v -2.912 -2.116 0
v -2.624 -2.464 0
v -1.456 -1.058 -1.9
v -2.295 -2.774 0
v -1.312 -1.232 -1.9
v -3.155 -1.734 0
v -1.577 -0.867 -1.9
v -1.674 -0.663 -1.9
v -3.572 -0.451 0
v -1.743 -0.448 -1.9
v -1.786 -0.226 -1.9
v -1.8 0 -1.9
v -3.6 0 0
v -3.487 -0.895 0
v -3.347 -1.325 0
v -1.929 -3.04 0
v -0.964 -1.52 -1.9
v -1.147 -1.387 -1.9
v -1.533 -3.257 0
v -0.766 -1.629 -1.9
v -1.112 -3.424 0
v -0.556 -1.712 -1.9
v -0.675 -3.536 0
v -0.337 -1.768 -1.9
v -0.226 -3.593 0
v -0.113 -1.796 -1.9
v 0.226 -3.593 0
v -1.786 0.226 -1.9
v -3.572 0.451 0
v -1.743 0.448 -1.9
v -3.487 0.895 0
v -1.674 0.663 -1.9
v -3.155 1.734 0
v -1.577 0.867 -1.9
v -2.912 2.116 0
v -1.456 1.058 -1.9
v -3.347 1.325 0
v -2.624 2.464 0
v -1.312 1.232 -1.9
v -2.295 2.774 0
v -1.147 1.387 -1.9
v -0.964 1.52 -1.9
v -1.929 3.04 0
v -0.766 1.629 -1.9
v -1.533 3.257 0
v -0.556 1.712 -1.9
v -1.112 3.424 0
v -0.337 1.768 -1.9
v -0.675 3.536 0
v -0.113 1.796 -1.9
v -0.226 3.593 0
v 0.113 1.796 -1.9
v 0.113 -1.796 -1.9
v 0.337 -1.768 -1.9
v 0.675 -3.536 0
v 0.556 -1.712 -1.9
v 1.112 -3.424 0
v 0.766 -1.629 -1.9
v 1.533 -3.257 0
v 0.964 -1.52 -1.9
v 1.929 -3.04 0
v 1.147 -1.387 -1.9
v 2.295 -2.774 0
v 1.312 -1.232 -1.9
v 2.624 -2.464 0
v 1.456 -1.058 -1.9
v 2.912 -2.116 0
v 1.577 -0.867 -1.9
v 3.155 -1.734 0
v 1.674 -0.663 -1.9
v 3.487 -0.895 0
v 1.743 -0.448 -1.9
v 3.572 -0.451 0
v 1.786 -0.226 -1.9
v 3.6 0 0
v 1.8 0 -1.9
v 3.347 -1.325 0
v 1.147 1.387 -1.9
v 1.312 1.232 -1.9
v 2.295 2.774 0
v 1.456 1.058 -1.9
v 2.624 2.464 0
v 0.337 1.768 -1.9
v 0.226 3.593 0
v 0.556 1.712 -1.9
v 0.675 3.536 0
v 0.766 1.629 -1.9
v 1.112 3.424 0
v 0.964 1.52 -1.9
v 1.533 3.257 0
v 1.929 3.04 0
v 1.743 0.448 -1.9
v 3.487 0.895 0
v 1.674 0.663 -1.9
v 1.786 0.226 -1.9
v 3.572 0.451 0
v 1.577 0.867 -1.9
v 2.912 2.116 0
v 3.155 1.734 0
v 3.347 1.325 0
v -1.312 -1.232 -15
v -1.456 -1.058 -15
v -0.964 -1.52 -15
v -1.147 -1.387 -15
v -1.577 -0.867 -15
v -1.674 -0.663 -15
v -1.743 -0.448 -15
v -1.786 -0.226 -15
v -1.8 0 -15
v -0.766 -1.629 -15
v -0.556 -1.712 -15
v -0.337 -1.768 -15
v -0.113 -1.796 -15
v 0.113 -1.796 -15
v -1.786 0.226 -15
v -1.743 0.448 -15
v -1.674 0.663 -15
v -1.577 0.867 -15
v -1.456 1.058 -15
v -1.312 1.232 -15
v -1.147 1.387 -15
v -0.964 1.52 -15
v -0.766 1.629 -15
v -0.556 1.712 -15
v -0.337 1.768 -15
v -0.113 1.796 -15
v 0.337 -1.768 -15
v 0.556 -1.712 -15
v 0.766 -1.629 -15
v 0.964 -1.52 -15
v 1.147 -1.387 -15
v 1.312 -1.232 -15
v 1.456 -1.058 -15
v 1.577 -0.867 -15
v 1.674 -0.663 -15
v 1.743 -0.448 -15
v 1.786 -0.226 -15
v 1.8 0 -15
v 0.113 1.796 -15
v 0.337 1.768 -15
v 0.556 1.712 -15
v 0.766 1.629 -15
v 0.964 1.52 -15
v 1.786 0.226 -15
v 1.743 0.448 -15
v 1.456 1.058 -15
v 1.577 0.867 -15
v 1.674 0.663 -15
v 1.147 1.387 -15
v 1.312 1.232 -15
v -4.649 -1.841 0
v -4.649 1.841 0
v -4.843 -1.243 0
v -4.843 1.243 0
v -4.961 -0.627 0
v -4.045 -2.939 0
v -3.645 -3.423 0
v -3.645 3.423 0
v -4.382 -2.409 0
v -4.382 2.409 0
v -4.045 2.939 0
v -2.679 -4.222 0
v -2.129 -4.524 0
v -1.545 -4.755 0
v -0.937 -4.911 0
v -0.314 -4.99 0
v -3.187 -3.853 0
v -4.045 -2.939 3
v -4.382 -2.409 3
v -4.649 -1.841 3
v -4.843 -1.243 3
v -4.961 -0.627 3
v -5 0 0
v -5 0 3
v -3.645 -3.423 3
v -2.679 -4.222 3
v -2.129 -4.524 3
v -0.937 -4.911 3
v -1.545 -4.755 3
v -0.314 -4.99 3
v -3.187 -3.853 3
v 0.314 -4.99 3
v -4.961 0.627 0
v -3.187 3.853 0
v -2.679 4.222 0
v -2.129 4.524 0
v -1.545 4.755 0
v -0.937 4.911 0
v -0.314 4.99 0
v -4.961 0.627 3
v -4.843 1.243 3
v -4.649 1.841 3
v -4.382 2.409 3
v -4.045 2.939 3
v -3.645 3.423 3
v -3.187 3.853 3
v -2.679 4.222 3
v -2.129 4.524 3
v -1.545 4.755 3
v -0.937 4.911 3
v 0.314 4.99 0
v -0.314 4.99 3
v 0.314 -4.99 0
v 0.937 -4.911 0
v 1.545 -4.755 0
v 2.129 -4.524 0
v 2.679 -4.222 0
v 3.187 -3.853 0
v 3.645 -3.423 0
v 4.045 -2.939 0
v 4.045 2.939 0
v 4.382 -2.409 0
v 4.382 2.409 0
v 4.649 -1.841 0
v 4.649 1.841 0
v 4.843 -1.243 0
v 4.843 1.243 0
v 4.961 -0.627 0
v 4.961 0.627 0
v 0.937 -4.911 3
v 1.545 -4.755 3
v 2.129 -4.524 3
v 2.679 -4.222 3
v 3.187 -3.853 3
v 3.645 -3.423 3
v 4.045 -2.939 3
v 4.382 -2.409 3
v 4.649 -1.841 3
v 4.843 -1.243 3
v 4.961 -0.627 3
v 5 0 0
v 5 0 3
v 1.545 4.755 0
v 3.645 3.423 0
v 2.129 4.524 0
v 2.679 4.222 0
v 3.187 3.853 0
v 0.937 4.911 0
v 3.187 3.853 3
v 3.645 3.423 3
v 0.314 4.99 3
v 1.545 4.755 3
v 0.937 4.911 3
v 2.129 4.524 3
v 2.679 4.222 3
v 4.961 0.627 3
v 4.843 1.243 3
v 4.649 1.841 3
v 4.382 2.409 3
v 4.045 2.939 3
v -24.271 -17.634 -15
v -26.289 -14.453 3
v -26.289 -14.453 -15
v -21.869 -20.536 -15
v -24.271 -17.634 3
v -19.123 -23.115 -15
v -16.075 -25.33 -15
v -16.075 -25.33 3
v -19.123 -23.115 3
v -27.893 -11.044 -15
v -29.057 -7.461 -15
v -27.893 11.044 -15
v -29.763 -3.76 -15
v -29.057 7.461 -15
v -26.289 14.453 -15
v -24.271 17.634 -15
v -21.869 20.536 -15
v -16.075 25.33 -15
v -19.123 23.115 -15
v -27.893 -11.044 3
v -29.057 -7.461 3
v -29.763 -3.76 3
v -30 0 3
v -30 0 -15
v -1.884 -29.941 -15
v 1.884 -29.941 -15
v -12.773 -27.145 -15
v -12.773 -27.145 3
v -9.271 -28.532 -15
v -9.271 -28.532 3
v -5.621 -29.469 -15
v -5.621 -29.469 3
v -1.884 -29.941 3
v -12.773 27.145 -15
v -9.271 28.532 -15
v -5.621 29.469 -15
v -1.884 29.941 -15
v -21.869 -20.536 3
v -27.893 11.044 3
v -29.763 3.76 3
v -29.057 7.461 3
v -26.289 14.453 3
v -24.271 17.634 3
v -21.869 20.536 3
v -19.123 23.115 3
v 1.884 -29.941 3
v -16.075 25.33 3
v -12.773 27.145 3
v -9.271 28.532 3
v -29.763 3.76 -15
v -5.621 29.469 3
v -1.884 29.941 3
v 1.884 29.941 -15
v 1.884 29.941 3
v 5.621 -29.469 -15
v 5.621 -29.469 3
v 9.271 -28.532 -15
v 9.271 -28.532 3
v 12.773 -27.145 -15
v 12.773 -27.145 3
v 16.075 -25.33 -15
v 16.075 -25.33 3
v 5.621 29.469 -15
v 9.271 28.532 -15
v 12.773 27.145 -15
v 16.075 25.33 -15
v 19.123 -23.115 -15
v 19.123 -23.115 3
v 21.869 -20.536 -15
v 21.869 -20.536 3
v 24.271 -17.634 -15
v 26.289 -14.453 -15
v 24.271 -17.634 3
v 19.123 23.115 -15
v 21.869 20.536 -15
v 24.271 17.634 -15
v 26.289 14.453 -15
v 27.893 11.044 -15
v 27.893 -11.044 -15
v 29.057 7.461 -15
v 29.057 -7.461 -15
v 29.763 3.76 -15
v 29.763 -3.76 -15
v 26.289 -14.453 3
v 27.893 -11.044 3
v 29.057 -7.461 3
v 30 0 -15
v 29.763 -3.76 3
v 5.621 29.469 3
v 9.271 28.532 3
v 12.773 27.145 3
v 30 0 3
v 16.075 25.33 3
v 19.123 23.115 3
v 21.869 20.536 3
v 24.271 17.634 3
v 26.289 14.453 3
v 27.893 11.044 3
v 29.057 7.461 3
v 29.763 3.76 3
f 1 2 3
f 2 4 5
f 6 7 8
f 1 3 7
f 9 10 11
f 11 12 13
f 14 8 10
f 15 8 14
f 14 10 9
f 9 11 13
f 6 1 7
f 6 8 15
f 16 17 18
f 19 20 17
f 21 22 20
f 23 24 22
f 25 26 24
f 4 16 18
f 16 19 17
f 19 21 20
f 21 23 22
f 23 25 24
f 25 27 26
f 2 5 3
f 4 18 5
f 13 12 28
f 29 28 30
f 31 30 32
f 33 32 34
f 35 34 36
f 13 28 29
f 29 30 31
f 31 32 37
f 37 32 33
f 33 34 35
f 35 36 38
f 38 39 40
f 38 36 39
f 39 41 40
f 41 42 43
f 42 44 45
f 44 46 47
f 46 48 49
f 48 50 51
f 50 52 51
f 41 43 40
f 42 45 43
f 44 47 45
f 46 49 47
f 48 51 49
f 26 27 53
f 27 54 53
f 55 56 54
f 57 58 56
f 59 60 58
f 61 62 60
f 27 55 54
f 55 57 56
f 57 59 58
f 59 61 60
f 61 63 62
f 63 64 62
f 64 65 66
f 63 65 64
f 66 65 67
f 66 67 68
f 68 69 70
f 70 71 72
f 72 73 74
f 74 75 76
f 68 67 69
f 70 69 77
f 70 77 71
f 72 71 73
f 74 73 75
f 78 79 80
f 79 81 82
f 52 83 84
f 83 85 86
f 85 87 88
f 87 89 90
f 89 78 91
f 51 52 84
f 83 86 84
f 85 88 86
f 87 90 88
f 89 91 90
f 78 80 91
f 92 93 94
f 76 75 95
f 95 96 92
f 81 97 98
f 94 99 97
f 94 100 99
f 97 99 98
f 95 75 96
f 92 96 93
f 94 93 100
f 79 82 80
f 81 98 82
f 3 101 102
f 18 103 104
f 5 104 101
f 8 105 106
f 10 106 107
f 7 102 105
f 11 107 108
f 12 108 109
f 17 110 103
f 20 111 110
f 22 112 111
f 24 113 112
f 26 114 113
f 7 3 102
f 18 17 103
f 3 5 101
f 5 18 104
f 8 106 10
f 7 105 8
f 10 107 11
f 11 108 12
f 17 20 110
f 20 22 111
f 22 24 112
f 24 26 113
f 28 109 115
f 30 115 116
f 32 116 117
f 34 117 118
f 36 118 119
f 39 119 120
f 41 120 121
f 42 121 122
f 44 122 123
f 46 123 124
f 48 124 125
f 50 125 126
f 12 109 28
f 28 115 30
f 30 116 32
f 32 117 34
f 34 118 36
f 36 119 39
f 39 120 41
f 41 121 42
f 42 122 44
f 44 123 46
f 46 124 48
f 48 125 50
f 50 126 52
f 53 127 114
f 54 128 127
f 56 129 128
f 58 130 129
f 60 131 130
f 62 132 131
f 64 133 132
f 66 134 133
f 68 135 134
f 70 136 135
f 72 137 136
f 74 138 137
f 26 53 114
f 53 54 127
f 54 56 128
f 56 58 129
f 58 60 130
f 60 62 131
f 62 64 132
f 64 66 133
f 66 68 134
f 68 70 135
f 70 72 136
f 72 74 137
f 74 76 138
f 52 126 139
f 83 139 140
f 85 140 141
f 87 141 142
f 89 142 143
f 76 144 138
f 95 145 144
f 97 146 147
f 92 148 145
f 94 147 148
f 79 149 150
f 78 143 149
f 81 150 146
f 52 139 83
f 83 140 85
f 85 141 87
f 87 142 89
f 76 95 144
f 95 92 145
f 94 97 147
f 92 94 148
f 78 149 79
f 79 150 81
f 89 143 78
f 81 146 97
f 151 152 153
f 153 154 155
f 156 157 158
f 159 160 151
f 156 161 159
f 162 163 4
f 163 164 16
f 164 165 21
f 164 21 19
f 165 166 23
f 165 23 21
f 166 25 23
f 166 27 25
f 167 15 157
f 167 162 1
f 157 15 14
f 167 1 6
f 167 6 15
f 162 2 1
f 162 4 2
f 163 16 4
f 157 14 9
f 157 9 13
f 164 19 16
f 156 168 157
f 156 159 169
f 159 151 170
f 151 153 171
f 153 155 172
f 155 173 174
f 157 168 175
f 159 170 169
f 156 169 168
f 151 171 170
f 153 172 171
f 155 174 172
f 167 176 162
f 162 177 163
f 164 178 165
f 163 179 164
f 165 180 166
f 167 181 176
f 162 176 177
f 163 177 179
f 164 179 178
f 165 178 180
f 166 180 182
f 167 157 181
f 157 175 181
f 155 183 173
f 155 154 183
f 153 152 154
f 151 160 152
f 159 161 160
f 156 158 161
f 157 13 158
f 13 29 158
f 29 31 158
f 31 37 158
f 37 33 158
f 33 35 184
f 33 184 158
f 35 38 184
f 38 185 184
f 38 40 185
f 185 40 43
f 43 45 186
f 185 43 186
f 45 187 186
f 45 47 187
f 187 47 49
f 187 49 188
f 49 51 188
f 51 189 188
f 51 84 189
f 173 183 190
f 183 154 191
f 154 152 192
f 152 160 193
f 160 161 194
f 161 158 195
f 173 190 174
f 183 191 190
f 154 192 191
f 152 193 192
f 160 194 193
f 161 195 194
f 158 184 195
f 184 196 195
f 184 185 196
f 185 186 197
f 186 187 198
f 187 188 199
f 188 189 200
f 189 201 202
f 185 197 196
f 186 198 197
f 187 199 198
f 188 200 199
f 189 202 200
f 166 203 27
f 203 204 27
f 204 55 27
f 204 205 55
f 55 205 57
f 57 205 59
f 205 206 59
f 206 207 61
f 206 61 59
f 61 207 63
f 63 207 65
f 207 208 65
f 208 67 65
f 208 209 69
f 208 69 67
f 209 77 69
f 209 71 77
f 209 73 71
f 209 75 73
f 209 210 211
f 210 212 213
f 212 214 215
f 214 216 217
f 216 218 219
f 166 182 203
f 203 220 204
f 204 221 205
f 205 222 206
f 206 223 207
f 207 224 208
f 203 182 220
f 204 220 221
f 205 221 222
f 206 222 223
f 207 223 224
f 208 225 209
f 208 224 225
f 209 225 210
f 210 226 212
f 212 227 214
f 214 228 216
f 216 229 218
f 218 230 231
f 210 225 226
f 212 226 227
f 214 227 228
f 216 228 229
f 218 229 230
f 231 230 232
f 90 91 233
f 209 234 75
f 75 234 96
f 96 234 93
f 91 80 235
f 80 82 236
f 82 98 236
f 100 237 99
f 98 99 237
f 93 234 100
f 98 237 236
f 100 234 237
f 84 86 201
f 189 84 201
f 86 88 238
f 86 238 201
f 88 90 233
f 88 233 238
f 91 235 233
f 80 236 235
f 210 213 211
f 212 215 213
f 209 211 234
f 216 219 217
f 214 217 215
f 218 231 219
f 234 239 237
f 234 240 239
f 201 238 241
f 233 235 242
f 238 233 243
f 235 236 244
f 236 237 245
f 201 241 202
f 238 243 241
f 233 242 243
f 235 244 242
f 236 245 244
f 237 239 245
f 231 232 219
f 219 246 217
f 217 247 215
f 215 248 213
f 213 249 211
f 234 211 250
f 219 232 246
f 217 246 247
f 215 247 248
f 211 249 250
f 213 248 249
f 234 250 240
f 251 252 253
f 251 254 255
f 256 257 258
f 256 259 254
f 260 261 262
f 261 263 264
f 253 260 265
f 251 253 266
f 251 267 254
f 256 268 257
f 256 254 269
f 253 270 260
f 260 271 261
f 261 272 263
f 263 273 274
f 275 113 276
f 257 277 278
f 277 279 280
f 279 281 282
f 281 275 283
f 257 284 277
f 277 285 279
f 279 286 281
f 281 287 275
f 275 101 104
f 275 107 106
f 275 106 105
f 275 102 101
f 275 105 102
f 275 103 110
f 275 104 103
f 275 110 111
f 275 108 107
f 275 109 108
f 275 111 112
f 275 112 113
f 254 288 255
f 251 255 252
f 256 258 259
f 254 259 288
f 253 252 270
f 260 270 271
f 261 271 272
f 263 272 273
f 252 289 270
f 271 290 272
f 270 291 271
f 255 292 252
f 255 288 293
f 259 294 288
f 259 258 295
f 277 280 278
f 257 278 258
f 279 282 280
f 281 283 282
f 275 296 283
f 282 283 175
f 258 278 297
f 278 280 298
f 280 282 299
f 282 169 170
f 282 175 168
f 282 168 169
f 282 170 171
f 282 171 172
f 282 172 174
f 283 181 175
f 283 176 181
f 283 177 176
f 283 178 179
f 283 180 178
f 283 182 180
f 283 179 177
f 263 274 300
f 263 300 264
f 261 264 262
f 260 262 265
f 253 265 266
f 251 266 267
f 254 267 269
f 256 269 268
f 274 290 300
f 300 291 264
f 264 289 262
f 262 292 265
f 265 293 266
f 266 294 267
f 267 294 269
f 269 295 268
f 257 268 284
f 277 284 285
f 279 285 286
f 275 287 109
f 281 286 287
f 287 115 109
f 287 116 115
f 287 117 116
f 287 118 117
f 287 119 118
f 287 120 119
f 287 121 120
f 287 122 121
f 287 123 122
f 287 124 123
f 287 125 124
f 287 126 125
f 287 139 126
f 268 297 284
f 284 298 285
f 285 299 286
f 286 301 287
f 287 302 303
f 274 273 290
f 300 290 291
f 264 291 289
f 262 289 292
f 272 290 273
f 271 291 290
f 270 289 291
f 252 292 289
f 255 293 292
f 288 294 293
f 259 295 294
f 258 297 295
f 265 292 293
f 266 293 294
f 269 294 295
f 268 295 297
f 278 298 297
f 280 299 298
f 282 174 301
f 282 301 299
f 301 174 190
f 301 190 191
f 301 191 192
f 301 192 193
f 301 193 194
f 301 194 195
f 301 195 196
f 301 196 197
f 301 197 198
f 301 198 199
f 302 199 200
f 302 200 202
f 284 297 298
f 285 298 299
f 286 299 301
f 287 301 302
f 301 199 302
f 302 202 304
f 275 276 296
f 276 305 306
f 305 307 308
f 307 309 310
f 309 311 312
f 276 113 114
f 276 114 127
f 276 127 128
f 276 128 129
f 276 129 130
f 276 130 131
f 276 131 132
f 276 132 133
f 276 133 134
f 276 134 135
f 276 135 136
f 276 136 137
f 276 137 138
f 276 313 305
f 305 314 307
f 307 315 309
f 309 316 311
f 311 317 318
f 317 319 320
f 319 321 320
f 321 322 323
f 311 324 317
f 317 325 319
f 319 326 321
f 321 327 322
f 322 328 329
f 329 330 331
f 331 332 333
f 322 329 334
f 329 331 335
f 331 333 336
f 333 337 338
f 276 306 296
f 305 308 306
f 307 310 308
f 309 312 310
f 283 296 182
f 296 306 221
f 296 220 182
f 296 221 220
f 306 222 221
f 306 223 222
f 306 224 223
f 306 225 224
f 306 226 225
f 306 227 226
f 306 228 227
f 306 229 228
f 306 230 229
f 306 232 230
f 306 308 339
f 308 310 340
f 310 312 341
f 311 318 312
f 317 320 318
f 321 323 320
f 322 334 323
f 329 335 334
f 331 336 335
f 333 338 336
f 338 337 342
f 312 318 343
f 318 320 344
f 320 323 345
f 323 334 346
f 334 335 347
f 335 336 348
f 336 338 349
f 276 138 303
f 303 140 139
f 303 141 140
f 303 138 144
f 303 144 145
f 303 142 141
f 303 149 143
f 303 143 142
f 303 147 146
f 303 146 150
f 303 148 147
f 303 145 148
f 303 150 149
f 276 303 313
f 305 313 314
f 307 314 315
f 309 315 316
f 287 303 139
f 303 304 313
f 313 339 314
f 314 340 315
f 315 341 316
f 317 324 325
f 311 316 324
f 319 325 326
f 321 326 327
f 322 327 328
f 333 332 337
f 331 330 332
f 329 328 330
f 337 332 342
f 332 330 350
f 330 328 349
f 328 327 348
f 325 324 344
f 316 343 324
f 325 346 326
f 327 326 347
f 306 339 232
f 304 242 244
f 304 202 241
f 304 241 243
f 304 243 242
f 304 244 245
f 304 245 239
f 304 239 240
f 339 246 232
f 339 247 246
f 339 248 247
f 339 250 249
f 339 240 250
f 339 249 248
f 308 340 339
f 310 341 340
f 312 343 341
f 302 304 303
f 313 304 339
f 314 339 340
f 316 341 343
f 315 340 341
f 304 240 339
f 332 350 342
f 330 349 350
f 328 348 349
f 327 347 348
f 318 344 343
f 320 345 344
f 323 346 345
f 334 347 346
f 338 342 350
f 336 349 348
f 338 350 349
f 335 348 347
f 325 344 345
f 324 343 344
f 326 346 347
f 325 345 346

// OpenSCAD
$fn = 50;


difference() {
	union() {
		translate(v = [0, 0, -15.0000000000]) {
			cylinder(h = 18, r = 30.0000000000);
		}
	}
	union() {
		translate(v = [0, 0, 0]) {
			rotate(a = [0, 0, 0]) {
				difference() {
					union() {
						translate(v = [0, 0, -18.0000000000]) {
							cylinder(h = 18, r = 1.5000000000);
						}
						translate(v = [0, 0, -1.9000000000]) {
							cylinder(h = 1.9000000000, r1 = 1.8000000000, r2 = 3.6000000000);
						}
						translate(v = [0, 0, -18.0000000000]) {
							cylinder(h = 18, r = 1.8000000000);
						}
						translate(v = [0, 0, -18.0000000000]) {
							cylinder(h = 18, r = 1.5000000000);
						}
					}
					union();
				}
			}
		}
		#cylinder(h = 3, r = 5.0000000000);
	}
}
